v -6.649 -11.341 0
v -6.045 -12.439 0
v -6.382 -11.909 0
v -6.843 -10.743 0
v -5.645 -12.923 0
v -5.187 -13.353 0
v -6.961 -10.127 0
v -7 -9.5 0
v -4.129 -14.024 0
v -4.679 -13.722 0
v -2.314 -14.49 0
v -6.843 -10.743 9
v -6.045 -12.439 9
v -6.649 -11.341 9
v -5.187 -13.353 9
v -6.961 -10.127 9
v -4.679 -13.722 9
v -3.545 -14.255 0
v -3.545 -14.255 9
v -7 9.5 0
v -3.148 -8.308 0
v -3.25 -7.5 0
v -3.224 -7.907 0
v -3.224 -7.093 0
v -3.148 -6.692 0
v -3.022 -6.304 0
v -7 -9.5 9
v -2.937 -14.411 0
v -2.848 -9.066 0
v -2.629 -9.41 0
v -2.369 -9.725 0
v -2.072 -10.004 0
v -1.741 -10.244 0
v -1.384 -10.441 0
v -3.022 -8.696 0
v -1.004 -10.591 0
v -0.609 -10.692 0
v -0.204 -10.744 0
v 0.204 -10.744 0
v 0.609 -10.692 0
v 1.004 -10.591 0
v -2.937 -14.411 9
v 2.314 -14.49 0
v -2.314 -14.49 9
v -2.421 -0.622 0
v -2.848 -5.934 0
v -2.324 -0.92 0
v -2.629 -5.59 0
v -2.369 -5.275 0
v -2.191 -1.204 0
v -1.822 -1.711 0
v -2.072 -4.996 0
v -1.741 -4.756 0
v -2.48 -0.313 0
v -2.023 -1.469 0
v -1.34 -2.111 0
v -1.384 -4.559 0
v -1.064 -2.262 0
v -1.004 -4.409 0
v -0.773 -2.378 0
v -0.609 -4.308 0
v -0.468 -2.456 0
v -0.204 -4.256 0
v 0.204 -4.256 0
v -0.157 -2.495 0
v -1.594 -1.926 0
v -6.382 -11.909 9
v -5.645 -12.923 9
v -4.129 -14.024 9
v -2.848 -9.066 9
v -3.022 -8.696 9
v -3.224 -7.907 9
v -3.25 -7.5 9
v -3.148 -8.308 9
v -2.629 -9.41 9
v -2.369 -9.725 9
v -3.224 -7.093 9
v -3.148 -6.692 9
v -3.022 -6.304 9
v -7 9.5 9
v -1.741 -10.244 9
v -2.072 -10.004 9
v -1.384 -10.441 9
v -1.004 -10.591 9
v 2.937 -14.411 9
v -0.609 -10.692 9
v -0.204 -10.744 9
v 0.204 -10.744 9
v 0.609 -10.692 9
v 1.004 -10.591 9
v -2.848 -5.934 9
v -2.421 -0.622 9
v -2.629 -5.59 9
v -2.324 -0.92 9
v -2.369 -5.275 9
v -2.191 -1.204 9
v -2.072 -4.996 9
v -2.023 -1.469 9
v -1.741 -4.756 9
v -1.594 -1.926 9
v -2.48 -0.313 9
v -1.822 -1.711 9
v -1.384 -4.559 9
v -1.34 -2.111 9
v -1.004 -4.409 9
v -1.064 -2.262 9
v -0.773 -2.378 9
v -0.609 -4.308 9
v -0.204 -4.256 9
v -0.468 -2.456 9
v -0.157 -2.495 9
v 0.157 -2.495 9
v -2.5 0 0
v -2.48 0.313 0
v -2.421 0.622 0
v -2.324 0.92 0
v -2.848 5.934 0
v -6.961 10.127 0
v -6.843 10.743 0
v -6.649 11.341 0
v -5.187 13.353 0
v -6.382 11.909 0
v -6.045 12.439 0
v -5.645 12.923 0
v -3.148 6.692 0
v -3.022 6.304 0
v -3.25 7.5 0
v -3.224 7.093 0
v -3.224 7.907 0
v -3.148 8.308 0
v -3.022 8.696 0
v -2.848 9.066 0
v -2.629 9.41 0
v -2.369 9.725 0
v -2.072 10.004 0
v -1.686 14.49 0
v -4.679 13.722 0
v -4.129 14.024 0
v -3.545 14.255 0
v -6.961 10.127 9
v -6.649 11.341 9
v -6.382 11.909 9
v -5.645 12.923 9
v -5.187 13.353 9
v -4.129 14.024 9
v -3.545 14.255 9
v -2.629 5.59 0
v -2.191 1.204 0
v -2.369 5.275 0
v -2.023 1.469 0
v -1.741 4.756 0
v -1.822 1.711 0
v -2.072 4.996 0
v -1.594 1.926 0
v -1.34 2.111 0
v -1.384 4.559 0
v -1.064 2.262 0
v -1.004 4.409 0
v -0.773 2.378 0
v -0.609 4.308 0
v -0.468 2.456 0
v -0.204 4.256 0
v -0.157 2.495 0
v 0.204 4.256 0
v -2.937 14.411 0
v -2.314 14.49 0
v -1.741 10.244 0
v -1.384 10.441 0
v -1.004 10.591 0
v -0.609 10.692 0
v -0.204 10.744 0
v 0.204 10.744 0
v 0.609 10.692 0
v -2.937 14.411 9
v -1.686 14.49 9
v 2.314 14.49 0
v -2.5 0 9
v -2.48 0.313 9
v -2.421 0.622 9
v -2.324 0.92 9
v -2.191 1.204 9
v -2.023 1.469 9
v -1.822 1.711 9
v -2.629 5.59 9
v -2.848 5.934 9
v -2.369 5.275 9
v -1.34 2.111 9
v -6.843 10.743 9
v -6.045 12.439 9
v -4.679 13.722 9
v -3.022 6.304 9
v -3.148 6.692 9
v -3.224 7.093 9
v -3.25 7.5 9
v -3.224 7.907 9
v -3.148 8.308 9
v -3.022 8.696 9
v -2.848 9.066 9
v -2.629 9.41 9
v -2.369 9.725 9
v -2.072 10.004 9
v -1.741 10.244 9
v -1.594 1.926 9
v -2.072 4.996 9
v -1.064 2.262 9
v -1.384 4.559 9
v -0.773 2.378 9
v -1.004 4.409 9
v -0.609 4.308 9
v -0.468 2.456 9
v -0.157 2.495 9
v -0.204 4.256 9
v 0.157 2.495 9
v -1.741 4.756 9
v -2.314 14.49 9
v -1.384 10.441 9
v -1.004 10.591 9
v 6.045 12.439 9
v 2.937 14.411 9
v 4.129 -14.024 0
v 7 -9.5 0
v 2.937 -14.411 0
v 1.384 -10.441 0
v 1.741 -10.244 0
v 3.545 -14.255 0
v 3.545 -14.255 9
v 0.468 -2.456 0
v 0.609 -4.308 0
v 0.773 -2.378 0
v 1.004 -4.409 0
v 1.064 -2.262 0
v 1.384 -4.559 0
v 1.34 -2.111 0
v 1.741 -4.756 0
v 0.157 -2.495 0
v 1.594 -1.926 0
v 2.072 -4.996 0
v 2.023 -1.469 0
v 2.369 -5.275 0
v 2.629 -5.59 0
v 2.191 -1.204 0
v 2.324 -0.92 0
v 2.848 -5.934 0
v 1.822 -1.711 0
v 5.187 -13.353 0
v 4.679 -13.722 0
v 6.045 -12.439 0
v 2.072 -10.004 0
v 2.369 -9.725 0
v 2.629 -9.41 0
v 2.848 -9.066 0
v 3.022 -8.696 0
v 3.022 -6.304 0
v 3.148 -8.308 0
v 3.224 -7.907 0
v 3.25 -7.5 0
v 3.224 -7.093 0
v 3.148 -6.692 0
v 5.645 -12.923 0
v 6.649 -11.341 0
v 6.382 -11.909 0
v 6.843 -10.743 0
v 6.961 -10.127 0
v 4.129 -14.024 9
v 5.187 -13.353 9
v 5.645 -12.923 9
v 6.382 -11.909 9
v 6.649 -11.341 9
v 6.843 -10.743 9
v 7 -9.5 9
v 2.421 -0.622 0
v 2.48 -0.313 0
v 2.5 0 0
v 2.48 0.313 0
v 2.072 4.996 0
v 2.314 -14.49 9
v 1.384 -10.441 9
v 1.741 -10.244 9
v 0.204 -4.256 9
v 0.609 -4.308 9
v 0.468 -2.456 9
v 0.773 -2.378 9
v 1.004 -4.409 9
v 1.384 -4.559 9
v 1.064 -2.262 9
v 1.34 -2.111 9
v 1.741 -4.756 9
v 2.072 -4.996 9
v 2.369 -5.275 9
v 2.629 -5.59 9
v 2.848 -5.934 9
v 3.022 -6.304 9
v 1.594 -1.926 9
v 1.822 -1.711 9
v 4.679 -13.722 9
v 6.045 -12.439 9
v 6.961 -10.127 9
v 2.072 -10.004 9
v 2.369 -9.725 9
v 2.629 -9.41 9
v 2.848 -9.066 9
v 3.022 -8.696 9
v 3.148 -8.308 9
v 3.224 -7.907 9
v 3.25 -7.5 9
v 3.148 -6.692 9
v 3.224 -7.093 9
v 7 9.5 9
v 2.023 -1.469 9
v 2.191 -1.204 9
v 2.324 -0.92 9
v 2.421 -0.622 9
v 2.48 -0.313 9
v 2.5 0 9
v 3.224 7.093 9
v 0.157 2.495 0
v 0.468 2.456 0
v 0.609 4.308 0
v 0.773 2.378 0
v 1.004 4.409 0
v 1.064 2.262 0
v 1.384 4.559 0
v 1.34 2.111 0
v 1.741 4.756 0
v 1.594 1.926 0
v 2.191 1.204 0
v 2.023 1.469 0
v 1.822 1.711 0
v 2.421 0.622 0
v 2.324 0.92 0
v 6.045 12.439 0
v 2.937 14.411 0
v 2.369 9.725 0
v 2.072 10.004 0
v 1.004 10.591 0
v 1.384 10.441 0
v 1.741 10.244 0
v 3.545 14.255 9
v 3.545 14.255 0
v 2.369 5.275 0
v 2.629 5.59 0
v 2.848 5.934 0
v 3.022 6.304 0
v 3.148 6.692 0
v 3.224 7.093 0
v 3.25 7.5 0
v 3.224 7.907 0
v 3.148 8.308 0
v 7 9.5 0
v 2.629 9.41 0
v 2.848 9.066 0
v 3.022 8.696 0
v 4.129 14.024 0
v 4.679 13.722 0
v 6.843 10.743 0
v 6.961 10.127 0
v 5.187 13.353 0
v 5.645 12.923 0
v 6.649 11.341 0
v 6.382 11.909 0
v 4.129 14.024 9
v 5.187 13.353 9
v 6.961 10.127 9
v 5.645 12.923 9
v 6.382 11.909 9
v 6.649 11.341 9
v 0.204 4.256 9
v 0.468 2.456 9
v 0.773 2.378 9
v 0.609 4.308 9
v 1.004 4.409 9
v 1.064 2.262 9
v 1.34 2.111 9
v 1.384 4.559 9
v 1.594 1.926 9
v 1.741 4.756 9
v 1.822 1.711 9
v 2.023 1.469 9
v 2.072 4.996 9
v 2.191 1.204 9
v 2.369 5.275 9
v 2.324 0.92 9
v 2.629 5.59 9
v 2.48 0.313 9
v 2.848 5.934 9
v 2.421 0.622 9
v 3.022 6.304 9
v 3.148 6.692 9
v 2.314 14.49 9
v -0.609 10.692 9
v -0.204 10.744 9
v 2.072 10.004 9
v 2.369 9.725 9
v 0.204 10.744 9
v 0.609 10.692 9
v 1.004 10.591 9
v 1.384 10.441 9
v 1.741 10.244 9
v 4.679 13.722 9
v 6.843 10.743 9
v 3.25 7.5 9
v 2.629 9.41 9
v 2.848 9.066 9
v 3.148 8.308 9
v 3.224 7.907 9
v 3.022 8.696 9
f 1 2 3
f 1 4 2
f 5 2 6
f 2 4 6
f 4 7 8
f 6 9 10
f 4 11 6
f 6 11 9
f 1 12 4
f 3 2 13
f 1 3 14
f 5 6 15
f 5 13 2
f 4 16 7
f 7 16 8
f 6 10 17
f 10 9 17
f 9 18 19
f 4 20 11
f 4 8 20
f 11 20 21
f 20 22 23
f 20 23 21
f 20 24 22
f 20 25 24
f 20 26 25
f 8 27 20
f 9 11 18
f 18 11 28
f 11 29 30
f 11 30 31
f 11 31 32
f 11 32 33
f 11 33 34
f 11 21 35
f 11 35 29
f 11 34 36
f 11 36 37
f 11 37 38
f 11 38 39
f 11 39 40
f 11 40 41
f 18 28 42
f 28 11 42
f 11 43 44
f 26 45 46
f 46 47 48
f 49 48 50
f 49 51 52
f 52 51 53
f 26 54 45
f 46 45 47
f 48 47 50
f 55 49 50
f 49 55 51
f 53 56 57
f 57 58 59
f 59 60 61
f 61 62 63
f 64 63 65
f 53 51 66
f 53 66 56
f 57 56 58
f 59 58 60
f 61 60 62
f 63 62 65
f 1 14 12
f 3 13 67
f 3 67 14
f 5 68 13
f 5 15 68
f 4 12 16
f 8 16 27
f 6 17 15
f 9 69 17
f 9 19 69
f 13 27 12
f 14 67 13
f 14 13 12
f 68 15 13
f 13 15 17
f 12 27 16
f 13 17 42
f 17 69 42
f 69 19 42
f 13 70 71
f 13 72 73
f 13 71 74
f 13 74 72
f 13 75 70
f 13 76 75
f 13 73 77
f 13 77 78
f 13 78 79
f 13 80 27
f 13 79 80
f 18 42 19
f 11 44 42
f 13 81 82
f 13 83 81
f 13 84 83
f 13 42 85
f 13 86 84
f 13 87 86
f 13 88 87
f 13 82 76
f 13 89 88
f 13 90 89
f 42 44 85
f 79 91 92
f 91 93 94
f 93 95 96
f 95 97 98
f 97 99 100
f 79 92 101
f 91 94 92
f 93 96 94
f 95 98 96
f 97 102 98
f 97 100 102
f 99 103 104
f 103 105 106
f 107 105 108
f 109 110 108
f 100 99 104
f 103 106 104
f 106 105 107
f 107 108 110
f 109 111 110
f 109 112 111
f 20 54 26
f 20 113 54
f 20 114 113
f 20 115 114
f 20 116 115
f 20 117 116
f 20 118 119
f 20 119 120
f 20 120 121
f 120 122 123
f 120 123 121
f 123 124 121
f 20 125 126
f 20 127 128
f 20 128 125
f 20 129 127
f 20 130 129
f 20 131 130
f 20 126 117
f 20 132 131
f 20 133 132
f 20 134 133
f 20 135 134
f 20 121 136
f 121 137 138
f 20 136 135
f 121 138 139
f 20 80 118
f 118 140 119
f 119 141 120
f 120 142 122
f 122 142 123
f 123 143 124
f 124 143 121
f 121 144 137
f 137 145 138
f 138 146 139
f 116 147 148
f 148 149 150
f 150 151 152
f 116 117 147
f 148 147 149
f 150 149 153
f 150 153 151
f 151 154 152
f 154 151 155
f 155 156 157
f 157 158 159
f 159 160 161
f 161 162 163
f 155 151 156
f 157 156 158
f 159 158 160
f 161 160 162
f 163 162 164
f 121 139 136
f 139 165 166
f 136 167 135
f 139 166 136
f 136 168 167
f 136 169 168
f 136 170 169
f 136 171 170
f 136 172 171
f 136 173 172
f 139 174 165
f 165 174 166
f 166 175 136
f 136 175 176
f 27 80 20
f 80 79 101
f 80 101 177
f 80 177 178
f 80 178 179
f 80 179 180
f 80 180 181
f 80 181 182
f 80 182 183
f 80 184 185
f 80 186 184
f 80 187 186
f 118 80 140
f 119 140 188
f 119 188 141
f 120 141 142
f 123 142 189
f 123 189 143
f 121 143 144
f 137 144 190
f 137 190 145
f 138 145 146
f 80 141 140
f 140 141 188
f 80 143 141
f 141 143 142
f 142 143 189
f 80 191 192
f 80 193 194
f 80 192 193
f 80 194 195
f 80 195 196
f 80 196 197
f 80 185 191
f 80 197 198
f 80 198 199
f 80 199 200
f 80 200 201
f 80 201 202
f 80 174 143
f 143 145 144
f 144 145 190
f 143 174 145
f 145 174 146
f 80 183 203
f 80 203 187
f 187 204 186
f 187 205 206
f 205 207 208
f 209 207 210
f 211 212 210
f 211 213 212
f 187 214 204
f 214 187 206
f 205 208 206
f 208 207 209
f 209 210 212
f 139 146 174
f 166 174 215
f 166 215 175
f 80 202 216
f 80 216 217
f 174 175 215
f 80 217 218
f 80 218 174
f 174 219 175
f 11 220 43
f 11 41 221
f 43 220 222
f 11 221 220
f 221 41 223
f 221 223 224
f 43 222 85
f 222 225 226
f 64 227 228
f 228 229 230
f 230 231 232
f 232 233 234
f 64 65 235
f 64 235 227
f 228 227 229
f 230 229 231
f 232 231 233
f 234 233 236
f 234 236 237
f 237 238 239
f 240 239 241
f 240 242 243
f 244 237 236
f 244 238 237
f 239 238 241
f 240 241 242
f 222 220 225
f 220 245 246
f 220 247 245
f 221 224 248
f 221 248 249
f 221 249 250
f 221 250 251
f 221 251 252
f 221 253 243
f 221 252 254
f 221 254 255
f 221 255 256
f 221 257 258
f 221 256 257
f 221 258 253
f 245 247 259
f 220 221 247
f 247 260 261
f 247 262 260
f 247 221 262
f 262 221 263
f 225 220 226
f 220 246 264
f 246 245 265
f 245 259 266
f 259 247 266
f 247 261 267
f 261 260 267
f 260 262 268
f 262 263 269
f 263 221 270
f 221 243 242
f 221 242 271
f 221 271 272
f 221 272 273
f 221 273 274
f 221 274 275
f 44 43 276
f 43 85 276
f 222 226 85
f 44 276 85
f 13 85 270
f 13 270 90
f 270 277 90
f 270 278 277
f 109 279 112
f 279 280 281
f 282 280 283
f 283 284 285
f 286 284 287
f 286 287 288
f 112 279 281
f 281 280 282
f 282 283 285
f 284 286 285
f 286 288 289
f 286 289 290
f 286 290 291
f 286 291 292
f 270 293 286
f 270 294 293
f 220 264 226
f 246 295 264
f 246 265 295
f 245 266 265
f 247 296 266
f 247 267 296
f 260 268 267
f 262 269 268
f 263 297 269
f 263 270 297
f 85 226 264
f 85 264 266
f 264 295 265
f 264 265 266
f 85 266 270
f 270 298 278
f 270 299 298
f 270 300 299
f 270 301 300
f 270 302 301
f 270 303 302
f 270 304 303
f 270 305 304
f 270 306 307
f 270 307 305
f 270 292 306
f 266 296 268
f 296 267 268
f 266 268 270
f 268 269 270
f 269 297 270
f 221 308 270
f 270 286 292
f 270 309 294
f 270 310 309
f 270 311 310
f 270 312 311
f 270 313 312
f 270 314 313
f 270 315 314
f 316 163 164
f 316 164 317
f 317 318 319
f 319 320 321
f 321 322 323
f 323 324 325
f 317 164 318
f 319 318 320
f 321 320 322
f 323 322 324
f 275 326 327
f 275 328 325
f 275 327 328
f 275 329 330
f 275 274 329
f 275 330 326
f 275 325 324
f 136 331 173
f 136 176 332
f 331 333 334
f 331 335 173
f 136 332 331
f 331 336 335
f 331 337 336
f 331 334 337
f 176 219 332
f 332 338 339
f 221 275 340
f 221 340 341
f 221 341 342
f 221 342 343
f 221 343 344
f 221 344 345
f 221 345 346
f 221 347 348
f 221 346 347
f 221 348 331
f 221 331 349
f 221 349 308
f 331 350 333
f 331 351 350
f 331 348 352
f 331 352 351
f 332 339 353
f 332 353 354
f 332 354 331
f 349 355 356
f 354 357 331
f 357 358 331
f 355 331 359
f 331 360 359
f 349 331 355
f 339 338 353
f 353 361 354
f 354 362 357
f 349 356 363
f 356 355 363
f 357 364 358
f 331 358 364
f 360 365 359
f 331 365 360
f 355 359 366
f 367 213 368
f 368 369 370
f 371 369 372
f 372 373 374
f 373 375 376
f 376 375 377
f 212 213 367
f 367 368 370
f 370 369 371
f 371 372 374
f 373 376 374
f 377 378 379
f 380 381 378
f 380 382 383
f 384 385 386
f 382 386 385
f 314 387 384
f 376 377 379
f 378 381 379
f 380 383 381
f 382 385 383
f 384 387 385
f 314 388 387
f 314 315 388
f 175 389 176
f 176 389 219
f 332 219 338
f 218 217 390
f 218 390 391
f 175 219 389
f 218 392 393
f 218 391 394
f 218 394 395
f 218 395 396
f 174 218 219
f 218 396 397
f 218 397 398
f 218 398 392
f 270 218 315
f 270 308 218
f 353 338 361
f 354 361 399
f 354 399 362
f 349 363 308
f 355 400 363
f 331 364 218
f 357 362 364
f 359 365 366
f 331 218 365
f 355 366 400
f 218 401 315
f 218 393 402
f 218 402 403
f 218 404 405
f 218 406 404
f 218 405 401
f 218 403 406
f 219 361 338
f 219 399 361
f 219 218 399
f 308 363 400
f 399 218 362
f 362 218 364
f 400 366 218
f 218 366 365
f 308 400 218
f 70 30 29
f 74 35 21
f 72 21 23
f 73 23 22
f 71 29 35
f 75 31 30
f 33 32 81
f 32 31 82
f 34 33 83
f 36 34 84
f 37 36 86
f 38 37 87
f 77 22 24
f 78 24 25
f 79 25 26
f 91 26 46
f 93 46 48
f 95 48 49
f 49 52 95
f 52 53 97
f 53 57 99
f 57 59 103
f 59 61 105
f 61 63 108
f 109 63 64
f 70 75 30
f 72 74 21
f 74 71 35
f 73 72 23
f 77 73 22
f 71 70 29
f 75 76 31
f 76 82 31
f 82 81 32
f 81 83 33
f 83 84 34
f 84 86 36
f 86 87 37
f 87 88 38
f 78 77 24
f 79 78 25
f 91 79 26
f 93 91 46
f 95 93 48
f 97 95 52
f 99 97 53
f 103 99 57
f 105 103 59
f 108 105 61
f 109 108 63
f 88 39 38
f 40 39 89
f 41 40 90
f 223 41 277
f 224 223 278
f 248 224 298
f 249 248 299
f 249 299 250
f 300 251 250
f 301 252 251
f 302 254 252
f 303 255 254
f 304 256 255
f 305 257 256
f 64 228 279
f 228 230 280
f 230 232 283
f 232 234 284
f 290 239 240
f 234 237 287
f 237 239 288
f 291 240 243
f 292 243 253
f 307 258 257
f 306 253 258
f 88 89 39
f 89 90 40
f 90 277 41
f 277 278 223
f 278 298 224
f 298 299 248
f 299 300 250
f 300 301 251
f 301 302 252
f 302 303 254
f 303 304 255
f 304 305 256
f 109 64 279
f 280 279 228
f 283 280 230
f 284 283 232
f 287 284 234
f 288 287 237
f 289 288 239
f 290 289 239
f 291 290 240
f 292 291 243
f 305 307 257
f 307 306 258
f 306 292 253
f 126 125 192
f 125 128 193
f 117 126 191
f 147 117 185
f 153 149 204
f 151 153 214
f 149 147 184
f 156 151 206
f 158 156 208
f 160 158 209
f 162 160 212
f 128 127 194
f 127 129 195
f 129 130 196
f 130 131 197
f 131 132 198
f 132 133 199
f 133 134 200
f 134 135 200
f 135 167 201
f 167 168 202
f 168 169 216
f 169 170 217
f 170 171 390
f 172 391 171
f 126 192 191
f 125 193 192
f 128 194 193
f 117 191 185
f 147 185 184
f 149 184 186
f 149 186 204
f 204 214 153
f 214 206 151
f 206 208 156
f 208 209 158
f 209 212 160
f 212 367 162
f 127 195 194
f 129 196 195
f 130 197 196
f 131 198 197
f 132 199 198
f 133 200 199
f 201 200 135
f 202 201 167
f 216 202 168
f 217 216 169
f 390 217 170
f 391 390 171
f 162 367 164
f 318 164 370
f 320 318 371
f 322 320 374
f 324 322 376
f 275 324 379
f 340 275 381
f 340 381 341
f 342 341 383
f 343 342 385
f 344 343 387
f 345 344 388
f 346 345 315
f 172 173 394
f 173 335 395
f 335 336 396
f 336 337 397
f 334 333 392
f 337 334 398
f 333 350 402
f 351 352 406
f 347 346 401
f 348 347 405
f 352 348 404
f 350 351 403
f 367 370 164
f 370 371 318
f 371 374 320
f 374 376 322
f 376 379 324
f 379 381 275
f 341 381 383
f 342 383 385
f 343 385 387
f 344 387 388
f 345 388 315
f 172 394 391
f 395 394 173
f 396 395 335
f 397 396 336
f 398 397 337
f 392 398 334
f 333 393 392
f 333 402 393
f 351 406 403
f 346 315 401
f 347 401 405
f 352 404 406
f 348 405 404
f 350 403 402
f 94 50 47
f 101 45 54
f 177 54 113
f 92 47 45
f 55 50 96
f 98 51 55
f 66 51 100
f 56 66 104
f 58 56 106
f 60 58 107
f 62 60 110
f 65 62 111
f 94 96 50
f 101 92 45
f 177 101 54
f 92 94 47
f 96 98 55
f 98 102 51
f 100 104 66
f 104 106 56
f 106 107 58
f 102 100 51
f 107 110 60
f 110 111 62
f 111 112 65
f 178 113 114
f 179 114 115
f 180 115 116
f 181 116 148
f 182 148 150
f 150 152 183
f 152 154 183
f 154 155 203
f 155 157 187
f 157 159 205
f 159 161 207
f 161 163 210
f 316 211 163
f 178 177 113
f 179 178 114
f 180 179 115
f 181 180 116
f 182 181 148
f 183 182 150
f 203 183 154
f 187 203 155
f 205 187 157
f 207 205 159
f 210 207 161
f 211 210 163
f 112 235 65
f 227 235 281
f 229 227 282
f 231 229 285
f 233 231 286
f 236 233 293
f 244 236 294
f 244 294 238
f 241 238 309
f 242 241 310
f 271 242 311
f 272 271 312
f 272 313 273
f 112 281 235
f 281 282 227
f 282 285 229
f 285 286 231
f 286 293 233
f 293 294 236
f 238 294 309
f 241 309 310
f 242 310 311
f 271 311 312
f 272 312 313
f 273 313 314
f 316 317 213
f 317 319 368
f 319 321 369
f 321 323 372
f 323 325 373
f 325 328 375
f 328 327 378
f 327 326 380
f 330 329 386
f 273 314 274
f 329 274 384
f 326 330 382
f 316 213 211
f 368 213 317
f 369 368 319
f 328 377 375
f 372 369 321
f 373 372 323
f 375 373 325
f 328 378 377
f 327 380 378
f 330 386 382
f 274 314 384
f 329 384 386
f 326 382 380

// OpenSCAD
$fn = 50;

difference() {
	union() {
		hull() {
			translate(v = [-2.0, 9.5, 0]) {
				cylinder(h = 9, r = 5);
			}
			translate(v = [2.0, 9.5, 0]) {
				cylinder(h = 9, r = 5);
			}
			translate(v = [-2.0, -9.5, 0]) {
				cylinder(h = 9, r = 5);
			}
			translate(v = [2.0, -9.5, 0]) {
				cylinder(h = 9, r = 5);
			}
		}
	}
	union() {
		translate(v = [0.0, -7.5, 0]) {
			cylinder(h = 9, r = 3.25);
		}
		translate(v = [0.0, 7.5, 0]) {
			cylinder(h = 9, r = 3.25);
		}
		cylinder(h = 9, r = 2.5);
	}
}
